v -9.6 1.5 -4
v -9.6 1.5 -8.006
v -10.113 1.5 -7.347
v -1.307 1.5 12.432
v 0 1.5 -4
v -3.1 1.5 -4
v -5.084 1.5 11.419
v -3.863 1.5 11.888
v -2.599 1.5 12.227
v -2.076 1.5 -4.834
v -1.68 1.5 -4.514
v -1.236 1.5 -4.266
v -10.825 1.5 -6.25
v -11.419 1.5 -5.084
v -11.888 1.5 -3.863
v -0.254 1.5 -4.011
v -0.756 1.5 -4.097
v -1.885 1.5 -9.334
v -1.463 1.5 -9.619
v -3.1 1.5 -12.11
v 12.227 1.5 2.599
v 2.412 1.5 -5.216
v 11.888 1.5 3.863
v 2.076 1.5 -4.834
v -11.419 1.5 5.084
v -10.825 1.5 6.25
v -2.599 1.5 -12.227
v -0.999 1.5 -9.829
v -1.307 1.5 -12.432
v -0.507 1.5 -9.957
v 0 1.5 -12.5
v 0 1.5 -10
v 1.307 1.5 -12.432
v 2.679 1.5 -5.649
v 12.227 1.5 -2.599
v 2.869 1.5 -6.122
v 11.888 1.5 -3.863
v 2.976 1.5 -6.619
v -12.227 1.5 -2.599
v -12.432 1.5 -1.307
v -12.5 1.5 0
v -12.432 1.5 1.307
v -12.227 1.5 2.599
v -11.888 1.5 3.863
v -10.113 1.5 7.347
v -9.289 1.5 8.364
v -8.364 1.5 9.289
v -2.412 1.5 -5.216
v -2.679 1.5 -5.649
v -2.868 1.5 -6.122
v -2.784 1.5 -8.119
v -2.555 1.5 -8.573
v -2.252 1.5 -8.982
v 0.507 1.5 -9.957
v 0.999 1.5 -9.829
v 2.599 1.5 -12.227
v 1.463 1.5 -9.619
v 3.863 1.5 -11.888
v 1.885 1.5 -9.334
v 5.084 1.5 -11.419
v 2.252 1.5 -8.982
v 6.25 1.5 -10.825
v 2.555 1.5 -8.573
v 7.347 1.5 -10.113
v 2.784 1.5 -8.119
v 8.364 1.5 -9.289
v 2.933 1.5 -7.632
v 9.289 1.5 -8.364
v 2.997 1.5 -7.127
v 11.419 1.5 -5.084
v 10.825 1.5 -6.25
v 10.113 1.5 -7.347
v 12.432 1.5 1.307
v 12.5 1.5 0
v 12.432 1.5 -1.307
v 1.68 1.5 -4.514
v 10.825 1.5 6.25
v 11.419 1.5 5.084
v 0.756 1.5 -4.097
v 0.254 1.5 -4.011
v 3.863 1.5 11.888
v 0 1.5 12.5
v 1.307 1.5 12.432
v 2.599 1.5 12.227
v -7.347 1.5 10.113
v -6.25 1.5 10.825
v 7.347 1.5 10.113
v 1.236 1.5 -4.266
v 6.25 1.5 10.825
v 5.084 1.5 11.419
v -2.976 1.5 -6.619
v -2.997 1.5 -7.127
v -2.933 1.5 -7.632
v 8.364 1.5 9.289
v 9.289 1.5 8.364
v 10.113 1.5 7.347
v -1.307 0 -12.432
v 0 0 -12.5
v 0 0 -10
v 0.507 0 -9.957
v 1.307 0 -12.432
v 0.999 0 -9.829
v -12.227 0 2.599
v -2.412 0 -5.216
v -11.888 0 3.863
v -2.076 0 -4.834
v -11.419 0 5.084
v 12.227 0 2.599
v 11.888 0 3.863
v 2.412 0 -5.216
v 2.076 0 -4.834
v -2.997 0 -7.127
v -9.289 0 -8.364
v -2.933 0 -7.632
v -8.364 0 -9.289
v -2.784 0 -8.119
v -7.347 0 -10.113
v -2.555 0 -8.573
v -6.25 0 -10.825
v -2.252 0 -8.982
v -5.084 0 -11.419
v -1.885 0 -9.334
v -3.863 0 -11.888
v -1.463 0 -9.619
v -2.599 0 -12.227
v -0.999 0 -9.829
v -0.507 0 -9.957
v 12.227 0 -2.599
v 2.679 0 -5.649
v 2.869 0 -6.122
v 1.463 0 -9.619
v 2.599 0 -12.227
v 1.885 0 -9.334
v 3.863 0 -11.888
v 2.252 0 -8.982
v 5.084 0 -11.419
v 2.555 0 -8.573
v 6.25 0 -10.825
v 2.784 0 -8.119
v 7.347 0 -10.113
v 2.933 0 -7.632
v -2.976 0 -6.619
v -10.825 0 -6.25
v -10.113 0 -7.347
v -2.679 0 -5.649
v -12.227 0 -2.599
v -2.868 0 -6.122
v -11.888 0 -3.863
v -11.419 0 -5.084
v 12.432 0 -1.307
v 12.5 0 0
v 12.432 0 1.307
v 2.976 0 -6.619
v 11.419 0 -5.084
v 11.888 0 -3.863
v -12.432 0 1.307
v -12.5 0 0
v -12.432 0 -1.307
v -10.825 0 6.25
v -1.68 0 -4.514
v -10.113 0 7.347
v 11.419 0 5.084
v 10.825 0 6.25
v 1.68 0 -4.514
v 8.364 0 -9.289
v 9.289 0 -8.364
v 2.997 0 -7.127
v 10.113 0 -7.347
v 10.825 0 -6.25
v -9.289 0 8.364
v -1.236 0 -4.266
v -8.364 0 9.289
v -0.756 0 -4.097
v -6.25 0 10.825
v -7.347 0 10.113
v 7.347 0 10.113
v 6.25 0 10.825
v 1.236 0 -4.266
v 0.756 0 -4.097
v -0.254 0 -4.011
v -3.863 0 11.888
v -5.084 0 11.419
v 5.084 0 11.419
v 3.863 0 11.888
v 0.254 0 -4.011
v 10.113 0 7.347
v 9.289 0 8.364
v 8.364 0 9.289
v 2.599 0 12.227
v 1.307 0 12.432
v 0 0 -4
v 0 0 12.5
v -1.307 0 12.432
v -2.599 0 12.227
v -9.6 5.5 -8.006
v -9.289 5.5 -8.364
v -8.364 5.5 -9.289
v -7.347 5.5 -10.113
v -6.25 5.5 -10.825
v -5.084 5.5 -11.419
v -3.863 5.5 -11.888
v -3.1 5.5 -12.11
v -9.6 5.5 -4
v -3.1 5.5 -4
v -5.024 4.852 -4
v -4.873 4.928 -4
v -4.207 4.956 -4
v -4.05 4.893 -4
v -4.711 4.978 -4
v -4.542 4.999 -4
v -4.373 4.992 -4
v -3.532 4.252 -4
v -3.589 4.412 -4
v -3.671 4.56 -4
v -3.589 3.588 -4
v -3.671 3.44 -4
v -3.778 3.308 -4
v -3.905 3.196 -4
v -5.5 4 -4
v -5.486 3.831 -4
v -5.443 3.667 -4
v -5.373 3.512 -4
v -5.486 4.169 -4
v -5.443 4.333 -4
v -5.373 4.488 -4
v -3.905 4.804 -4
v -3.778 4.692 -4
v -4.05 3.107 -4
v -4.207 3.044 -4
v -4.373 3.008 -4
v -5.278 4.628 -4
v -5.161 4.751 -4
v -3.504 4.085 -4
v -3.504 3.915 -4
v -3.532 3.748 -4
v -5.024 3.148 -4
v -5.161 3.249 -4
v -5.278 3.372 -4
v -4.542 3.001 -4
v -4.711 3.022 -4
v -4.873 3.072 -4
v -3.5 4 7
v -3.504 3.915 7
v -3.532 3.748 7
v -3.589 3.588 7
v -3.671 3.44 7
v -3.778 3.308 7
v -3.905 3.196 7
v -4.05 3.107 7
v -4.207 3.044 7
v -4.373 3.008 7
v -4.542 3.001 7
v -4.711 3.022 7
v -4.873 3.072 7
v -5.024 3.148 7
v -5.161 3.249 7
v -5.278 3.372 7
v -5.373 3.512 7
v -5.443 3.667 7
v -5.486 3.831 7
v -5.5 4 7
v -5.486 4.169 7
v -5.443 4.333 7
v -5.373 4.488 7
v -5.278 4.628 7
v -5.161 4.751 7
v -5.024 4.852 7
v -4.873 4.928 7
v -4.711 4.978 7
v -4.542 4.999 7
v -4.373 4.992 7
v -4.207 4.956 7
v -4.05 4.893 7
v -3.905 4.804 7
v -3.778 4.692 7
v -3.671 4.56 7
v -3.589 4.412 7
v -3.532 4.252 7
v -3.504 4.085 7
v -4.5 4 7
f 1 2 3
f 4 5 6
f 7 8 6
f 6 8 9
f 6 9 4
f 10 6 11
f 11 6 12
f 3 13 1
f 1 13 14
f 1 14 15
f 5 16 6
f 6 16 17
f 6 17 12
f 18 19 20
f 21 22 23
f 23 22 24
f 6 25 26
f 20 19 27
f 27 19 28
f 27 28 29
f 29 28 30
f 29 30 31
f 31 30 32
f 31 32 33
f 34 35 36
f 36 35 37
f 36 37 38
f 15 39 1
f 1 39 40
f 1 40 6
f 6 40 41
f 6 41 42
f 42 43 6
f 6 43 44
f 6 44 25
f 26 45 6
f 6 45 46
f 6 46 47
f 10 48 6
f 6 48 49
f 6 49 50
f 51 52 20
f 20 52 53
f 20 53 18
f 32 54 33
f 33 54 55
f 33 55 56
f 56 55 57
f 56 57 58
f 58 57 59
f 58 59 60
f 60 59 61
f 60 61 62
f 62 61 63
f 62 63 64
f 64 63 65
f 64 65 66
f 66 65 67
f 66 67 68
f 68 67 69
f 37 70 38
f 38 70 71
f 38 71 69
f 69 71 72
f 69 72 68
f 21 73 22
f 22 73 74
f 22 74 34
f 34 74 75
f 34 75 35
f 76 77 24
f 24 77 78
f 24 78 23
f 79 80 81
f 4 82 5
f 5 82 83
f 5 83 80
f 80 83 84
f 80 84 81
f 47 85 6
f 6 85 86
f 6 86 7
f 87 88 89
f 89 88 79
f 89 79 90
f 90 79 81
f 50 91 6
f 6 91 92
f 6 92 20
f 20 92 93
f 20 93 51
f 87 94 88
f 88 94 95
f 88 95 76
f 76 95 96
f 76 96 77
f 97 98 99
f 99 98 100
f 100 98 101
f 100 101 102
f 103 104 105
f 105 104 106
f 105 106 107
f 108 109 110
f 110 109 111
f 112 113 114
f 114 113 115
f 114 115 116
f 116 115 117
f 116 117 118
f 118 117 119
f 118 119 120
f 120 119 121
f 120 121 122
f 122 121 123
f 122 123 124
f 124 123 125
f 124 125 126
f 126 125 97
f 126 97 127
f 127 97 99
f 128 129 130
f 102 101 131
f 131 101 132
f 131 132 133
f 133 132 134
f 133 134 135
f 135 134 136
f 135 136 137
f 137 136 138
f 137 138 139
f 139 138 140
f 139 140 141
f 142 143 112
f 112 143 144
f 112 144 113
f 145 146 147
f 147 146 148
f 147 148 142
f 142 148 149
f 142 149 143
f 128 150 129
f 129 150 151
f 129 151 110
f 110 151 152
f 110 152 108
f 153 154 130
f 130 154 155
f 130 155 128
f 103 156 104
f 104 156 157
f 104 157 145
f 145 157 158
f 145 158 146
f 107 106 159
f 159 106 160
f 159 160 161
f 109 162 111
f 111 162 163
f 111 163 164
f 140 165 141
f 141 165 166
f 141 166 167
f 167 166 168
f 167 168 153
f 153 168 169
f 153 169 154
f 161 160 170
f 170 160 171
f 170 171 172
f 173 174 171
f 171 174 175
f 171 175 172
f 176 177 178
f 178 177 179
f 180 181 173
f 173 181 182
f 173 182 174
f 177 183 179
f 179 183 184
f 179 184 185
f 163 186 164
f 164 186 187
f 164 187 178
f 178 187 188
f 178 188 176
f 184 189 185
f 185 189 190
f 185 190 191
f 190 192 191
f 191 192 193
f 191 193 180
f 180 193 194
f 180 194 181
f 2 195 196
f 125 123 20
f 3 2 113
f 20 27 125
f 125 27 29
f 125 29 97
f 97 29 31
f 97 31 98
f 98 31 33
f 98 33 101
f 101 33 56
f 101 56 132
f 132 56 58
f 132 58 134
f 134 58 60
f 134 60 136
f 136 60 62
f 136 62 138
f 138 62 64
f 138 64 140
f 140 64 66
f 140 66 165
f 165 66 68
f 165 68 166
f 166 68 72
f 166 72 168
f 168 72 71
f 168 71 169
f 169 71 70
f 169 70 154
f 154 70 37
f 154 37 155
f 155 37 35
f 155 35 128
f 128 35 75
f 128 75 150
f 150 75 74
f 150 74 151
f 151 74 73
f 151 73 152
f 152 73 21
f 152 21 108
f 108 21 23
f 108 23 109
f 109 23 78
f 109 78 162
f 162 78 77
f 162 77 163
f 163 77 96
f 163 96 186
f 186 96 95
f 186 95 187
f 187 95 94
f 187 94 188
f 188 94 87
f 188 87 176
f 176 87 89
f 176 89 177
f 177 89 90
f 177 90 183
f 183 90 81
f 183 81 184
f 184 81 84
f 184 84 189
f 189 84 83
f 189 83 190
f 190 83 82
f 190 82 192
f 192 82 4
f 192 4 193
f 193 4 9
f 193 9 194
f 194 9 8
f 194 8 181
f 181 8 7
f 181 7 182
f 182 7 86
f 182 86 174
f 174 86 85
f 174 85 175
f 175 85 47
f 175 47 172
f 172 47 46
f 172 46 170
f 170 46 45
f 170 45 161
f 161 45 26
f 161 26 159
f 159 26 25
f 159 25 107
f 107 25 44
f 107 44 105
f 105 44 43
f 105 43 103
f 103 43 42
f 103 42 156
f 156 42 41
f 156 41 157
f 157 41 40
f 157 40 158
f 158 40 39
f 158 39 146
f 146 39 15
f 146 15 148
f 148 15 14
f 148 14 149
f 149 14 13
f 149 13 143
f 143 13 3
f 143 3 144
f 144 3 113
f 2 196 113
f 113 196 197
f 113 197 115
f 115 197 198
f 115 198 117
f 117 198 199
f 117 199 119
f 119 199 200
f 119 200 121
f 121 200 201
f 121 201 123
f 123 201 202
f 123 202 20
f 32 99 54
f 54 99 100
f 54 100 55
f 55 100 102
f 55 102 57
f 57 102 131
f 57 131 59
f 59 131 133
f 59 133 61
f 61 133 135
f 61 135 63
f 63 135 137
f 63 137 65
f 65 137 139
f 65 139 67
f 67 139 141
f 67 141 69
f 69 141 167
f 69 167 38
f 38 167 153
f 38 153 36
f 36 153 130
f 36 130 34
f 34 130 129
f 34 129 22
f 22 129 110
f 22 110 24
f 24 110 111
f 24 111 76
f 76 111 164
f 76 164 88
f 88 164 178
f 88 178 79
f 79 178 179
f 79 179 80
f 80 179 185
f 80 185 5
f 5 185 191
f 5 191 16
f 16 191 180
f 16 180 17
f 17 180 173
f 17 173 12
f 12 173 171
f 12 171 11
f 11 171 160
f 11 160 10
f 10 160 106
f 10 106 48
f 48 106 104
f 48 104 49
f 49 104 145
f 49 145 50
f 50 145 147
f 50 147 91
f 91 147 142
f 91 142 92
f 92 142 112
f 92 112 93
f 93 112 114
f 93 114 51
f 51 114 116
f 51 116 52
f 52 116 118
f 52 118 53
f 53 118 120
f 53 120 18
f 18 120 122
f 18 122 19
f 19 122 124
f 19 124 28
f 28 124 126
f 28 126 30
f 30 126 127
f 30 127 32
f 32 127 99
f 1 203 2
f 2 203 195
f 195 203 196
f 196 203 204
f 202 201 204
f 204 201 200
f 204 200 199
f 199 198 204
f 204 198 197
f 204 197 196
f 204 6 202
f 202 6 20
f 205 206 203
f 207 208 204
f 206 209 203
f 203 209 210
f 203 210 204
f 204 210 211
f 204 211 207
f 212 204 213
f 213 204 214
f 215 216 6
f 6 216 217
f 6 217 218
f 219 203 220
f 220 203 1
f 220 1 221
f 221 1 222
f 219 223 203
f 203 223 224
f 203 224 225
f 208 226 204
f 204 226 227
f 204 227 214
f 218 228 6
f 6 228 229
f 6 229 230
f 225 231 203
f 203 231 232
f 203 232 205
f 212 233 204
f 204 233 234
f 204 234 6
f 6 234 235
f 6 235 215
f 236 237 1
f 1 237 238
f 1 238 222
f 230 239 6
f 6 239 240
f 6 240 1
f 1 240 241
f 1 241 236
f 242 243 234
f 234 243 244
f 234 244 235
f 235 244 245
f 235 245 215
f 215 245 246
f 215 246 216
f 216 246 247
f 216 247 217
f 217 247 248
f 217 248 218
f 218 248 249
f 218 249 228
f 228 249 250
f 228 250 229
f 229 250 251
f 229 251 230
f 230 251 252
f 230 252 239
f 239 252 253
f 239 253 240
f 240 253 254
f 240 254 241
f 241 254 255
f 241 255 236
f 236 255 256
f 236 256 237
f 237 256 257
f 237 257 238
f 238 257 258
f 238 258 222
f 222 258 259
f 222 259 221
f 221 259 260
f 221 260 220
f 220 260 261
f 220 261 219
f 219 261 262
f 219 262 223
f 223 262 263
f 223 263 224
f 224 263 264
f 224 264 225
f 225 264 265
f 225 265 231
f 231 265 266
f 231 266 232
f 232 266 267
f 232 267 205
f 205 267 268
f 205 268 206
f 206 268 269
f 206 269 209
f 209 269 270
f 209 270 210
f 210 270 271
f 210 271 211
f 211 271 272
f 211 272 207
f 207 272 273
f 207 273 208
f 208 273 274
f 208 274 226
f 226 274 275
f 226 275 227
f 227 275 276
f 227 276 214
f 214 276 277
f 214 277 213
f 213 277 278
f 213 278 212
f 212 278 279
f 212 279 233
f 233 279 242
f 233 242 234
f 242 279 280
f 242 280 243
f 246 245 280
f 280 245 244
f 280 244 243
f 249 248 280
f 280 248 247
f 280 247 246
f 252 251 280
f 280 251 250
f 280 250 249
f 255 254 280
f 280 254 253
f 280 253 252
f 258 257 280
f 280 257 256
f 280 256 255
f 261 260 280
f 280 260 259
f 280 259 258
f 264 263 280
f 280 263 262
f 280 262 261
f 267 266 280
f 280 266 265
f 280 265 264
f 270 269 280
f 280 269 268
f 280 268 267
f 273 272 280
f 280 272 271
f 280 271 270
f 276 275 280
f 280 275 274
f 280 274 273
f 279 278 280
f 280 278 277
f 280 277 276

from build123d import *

# Parameters (mm, degrees)
SKETCH1_R                = 12.5
SKETCH1_R_2              = 3
BOSS_EXTRUDE1_DEPTH      = 1.5
SKETCH3_R                = 1
BOSS_EXTRUDE3_DEPTH      = 11
BOSS_EXTRUDE4_REACH      = 23.296
BOSS_EXTRUDE4_END_RADIUS = 12.5
SKETCH5_W                = 6.5
SKETCH5_H                = 4


with BuildPart() as part:
    # Sketch1 → Boss-Extrude1 (new body)
    with BuildSketch(Plane(origin=(0, 0, 0), x_dir=(1, 0, 0), z_dir=(0, 1, 0))):
        with Locations(Location((0, 0, 0), (0, 0, 270))):
            Circle(SKETCH1_R)
        with Locations(Location((0, 7, 0), (0, 0, 270))):
            Circle(SKETCH1_R_2, mode=Mode.SUBTRACT)
    extrude(amount=BOSS_EXTRUDE1_DEPTH)



with BuildPart() as body_2:
    # Sketch3 → Boss-Extrude3 (new body)
    with BuildSketch(Plane.XY.offset(-4)):
        with Locations((-4.5, 4)):
            Circle(SKETCH3_R)
    extrude(amount=BOSS_EXTRUDE3_DEPTH)


with BuildPart() as part_1:
    add(part.part)

    add(body_2.part)  # Boss-Extrude4 merges body 2
    # Boss-Extrude4: up to this cylinder (the profile starts inside it)
    boss_extrude4_end = Plane(origin=(0, 3.5, 0), z_dir=(0, -1, 0)) * Cylinder(BOSS_EXTRUDE4_END_RADIUS, 72.592, mode=Mode.PRIVATE)
    # Sketch5 → Boss-Extrude4 (add, up to the surface)
    with BuildSketch(Plane.XY.offset(-4), mode=Mode.PRIVATE) as boss_extrude4_sk1:
        with Locations((-6.35, 3.5)):
            Rectangle(SKETCH5_W, SKETCH5_H)
    boss_extrude4_tool1 = extrude(boss_extrude4_sk1.sketch, amount=-BOSS_EXTRUDE4_REACH, mode=Mode.PRIVATE) & boss_extrude4_end
    add(boss_extrude4_tool1.solids().sort_by_distance((-6.35, 3.5, -4))[0])


solid = part_1.part
